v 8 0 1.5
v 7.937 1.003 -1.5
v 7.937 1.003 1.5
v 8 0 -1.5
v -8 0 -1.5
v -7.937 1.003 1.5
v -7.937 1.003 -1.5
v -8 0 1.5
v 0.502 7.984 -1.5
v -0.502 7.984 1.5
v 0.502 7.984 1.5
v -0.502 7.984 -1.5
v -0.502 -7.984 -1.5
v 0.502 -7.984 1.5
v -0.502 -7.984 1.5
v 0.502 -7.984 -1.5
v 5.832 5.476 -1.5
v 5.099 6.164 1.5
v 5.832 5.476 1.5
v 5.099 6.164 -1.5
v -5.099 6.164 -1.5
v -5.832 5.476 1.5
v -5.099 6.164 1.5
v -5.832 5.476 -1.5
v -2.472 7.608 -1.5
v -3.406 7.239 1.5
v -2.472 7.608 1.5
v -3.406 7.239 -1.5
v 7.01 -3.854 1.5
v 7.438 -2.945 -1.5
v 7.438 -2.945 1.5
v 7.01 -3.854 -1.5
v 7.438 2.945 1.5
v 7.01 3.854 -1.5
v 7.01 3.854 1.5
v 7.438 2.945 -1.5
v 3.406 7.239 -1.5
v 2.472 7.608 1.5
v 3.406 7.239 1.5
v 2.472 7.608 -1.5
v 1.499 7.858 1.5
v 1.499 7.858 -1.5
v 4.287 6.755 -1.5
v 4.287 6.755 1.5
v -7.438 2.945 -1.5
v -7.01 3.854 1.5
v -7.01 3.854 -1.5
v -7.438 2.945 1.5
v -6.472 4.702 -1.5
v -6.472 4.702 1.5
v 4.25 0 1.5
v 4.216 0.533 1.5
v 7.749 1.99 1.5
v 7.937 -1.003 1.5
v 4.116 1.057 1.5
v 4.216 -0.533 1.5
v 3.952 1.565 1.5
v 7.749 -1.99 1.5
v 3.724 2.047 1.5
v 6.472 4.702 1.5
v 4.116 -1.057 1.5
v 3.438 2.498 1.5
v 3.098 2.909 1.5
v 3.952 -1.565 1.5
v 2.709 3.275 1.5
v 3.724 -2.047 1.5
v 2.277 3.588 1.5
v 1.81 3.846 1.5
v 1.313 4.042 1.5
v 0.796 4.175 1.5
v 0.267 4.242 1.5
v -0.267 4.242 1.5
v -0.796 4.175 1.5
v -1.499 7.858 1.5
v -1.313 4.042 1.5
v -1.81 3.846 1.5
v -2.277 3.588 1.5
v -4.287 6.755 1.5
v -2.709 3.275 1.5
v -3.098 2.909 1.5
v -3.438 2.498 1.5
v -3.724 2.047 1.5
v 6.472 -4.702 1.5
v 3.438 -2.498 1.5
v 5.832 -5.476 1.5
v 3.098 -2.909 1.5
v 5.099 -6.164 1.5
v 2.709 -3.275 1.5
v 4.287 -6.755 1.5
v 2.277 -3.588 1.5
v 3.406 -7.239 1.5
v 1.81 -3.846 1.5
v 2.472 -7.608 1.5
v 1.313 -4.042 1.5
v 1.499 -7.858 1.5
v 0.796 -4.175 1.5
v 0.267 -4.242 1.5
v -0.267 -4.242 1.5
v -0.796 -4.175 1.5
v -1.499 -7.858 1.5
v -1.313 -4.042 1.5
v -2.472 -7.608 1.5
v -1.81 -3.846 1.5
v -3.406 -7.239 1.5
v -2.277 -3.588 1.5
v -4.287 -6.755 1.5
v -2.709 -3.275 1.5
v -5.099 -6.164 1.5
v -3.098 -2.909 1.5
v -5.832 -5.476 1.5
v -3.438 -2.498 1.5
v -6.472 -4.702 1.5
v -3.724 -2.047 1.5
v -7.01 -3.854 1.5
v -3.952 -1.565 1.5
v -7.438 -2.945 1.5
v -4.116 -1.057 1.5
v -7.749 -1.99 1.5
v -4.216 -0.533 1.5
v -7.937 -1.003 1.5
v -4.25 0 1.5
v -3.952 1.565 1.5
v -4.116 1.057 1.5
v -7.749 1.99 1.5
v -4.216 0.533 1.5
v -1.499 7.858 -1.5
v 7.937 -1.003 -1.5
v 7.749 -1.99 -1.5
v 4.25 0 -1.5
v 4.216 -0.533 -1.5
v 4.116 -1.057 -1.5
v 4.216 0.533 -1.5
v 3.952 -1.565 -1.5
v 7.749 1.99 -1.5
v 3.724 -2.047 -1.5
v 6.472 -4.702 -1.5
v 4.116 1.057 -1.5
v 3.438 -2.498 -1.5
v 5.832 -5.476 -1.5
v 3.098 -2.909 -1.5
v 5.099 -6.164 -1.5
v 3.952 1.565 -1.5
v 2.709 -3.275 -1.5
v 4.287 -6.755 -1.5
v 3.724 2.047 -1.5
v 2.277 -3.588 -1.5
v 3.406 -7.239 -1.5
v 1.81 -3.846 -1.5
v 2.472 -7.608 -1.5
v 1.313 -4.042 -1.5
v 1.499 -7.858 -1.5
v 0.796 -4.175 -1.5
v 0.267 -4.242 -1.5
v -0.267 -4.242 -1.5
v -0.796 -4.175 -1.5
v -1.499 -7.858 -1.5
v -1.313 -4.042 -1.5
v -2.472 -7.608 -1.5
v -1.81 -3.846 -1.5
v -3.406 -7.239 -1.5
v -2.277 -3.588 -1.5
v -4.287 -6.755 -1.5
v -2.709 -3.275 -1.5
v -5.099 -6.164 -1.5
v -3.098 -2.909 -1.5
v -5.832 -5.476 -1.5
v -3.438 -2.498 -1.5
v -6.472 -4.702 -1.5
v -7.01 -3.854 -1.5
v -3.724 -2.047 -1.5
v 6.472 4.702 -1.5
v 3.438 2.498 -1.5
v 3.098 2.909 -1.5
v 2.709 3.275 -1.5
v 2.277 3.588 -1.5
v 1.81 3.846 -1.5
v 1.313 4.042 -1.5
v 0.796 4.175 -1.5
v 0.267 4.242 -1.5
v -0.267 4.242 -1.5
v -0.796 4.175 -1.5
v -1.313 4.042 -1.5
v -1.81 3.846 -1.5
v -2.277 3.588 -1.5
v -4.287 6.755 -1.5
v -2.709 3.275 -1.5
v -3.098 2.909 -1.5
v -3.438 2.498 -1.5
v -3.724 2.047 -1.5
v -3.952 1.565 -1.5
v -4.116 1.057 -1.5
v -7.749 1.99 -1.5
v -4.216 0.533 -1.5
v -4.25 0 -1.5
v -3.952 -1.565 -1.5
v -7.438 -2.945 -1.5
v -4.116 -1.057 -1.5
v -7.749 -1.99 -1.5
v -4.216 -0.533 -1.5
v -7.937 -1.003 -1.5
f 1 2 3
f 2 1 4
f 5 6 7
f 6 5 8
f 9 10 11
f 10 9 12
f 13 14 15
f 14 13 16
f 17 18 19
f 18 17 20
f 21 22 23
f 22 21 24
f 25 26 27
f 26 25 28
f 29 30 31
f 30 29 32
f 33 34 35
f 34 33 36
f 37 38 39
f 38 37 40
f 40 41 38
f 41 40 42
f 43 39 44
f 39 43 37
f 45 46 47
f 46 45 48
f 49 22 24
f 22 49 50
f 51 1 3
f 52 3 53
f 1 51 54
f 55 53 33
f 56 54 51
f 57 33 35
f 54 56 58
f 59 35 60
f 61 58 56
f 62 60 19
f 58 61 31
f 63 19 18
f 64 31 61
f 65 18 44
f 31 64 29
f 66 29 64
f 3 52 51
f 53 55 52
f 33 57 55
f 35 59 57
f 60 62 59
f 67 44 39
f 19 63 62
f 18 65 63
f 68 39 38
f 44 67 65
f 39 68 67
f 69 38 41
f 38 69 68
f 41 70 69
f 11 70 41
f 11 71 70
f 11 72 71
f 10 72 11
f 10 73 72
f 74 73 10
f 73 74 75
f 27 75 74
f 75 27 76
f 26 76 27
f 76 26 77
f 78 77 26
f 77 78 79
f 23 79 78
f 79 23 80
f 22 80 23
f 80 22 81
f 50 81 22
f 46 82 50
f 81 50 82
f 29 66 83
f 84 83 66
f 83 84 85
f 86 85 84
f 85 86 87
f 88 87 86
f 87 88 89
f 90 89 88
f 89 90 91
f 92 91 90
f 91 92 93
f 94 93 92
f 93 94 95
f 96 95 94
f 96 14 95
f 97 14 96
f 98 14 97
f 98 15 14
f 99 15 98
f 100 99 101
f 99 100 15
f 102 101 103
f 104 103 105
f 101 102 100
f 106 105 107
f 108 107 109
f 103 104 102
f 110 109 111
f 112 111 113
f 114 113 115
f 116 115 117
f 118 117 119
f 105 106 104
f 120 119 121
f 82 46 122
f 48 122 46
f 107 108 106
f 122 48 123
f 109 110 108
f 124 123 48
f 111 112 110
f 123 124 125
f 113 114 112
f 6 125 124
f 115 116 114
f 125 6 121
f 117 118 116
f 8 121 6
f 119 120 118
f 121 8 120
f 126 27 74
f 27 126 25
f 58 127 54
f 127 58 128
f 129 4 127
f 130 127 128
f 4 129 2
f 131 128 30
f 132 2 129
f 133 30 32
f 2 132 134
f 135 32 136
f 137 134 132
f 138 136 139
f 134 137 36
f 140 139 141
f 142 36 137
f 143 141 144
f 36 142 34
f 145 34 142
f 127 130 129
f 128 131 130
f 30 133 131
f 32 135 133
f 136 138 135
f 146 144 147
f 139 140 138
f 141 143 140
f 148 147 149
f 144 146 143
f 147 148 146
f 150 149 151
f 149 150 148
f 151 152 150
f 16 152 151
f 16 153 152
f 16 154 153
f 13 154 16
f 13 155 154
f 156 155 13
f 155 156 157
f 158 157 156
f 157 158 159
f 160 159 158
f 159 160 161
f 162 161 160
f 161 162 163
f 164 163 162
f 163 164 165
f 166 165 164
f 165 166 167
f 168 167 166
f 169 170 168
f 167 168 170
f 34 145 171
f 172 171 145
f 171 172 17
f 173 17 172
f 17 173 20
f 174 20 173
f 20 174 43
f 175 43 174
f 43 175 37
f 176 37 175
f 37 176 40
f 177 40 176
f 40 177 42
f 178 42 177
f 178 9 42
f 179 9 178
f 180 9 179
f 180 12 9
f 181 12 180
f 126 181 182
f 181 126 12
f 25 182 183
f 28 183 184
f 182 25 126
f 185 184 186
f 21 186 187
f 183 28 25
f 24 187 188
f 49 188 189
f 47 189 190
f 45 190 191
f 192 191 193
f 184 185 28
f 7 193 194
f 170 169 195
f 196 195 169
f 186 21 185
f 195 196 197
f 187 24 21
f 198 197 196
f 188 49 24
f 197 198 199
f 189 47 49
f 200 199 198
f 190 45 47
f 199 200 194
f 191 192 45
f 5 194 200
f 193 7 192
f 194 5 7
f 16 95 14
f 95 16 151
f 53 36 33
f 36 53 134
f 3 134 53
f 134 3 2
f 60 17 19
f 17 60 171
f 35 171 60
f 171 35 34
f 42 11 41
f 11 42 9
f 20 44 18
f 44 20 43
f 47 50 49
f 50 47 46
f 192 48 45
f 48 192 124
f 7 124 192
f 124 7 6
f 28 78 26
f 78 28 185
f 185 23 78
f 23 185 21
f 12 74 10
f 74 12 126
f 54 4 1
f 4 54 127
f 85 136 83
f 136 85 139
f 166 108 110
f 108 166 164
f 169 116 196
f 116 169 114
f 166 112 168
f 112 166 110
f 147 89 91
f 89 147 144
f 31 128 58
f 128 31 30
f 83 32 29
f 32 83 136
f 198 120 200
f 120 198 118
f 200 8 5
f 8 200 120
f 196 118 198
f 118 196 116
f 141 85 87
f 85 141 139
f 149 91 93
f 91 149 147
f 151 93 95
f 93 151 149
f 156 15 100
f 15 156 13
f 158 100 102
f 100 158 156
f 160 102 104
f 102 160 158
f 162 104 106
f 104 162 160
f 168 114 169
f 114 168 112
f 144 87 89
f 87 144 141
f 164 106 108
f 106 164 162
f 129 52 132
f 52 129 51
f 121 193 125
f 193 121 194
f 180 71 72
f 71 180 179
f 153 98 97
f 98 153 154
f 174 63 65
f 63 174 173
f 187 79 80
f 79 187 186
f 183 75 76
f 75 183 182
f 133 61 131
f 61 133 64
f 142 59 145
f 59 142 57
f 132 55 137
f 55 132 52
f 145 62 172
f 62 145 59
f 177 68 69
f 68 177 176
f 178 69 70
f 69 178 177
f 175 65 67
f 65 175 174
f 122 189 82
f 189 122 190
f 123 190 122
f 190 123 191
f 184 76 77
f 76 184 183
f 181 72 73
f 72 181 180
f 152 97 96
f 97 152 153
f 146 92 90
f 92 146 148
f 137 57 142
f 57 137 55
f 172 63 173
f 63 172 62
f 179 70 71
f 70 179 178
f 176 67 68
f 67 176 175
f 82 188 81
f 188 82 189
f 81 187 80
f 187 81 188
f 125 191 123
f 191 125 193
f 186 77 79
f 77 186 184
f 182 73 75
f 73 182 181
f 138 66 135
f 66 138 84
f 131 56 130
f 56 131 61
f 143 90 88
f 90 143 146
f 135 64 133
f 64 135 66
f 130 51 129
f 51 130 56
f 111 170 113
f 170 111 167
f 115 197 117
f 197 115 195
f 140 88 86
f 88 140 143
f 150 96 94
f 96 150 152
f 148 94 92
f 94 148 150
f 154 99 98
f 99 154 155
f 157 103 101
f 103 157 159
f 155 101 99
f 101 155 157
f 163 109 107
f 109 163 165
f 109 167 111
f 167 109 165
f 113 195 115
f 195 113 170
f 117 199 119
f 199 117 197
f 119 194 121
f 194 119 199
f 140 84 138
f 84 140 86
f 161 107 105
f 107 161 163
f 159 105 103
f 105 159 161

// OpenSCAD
$fn = 50;


difference() {
	union() {
		translate(v = [0, 0, -1.5000000000]) {
			cylinder(h = 3, r = 8.0000000000);
		}
	}
	union() {
		translate(v = [0, 0, -100.0000000000]) {
			cylinder(h = 200, r = 4.2500000000);
		}
	}
}
